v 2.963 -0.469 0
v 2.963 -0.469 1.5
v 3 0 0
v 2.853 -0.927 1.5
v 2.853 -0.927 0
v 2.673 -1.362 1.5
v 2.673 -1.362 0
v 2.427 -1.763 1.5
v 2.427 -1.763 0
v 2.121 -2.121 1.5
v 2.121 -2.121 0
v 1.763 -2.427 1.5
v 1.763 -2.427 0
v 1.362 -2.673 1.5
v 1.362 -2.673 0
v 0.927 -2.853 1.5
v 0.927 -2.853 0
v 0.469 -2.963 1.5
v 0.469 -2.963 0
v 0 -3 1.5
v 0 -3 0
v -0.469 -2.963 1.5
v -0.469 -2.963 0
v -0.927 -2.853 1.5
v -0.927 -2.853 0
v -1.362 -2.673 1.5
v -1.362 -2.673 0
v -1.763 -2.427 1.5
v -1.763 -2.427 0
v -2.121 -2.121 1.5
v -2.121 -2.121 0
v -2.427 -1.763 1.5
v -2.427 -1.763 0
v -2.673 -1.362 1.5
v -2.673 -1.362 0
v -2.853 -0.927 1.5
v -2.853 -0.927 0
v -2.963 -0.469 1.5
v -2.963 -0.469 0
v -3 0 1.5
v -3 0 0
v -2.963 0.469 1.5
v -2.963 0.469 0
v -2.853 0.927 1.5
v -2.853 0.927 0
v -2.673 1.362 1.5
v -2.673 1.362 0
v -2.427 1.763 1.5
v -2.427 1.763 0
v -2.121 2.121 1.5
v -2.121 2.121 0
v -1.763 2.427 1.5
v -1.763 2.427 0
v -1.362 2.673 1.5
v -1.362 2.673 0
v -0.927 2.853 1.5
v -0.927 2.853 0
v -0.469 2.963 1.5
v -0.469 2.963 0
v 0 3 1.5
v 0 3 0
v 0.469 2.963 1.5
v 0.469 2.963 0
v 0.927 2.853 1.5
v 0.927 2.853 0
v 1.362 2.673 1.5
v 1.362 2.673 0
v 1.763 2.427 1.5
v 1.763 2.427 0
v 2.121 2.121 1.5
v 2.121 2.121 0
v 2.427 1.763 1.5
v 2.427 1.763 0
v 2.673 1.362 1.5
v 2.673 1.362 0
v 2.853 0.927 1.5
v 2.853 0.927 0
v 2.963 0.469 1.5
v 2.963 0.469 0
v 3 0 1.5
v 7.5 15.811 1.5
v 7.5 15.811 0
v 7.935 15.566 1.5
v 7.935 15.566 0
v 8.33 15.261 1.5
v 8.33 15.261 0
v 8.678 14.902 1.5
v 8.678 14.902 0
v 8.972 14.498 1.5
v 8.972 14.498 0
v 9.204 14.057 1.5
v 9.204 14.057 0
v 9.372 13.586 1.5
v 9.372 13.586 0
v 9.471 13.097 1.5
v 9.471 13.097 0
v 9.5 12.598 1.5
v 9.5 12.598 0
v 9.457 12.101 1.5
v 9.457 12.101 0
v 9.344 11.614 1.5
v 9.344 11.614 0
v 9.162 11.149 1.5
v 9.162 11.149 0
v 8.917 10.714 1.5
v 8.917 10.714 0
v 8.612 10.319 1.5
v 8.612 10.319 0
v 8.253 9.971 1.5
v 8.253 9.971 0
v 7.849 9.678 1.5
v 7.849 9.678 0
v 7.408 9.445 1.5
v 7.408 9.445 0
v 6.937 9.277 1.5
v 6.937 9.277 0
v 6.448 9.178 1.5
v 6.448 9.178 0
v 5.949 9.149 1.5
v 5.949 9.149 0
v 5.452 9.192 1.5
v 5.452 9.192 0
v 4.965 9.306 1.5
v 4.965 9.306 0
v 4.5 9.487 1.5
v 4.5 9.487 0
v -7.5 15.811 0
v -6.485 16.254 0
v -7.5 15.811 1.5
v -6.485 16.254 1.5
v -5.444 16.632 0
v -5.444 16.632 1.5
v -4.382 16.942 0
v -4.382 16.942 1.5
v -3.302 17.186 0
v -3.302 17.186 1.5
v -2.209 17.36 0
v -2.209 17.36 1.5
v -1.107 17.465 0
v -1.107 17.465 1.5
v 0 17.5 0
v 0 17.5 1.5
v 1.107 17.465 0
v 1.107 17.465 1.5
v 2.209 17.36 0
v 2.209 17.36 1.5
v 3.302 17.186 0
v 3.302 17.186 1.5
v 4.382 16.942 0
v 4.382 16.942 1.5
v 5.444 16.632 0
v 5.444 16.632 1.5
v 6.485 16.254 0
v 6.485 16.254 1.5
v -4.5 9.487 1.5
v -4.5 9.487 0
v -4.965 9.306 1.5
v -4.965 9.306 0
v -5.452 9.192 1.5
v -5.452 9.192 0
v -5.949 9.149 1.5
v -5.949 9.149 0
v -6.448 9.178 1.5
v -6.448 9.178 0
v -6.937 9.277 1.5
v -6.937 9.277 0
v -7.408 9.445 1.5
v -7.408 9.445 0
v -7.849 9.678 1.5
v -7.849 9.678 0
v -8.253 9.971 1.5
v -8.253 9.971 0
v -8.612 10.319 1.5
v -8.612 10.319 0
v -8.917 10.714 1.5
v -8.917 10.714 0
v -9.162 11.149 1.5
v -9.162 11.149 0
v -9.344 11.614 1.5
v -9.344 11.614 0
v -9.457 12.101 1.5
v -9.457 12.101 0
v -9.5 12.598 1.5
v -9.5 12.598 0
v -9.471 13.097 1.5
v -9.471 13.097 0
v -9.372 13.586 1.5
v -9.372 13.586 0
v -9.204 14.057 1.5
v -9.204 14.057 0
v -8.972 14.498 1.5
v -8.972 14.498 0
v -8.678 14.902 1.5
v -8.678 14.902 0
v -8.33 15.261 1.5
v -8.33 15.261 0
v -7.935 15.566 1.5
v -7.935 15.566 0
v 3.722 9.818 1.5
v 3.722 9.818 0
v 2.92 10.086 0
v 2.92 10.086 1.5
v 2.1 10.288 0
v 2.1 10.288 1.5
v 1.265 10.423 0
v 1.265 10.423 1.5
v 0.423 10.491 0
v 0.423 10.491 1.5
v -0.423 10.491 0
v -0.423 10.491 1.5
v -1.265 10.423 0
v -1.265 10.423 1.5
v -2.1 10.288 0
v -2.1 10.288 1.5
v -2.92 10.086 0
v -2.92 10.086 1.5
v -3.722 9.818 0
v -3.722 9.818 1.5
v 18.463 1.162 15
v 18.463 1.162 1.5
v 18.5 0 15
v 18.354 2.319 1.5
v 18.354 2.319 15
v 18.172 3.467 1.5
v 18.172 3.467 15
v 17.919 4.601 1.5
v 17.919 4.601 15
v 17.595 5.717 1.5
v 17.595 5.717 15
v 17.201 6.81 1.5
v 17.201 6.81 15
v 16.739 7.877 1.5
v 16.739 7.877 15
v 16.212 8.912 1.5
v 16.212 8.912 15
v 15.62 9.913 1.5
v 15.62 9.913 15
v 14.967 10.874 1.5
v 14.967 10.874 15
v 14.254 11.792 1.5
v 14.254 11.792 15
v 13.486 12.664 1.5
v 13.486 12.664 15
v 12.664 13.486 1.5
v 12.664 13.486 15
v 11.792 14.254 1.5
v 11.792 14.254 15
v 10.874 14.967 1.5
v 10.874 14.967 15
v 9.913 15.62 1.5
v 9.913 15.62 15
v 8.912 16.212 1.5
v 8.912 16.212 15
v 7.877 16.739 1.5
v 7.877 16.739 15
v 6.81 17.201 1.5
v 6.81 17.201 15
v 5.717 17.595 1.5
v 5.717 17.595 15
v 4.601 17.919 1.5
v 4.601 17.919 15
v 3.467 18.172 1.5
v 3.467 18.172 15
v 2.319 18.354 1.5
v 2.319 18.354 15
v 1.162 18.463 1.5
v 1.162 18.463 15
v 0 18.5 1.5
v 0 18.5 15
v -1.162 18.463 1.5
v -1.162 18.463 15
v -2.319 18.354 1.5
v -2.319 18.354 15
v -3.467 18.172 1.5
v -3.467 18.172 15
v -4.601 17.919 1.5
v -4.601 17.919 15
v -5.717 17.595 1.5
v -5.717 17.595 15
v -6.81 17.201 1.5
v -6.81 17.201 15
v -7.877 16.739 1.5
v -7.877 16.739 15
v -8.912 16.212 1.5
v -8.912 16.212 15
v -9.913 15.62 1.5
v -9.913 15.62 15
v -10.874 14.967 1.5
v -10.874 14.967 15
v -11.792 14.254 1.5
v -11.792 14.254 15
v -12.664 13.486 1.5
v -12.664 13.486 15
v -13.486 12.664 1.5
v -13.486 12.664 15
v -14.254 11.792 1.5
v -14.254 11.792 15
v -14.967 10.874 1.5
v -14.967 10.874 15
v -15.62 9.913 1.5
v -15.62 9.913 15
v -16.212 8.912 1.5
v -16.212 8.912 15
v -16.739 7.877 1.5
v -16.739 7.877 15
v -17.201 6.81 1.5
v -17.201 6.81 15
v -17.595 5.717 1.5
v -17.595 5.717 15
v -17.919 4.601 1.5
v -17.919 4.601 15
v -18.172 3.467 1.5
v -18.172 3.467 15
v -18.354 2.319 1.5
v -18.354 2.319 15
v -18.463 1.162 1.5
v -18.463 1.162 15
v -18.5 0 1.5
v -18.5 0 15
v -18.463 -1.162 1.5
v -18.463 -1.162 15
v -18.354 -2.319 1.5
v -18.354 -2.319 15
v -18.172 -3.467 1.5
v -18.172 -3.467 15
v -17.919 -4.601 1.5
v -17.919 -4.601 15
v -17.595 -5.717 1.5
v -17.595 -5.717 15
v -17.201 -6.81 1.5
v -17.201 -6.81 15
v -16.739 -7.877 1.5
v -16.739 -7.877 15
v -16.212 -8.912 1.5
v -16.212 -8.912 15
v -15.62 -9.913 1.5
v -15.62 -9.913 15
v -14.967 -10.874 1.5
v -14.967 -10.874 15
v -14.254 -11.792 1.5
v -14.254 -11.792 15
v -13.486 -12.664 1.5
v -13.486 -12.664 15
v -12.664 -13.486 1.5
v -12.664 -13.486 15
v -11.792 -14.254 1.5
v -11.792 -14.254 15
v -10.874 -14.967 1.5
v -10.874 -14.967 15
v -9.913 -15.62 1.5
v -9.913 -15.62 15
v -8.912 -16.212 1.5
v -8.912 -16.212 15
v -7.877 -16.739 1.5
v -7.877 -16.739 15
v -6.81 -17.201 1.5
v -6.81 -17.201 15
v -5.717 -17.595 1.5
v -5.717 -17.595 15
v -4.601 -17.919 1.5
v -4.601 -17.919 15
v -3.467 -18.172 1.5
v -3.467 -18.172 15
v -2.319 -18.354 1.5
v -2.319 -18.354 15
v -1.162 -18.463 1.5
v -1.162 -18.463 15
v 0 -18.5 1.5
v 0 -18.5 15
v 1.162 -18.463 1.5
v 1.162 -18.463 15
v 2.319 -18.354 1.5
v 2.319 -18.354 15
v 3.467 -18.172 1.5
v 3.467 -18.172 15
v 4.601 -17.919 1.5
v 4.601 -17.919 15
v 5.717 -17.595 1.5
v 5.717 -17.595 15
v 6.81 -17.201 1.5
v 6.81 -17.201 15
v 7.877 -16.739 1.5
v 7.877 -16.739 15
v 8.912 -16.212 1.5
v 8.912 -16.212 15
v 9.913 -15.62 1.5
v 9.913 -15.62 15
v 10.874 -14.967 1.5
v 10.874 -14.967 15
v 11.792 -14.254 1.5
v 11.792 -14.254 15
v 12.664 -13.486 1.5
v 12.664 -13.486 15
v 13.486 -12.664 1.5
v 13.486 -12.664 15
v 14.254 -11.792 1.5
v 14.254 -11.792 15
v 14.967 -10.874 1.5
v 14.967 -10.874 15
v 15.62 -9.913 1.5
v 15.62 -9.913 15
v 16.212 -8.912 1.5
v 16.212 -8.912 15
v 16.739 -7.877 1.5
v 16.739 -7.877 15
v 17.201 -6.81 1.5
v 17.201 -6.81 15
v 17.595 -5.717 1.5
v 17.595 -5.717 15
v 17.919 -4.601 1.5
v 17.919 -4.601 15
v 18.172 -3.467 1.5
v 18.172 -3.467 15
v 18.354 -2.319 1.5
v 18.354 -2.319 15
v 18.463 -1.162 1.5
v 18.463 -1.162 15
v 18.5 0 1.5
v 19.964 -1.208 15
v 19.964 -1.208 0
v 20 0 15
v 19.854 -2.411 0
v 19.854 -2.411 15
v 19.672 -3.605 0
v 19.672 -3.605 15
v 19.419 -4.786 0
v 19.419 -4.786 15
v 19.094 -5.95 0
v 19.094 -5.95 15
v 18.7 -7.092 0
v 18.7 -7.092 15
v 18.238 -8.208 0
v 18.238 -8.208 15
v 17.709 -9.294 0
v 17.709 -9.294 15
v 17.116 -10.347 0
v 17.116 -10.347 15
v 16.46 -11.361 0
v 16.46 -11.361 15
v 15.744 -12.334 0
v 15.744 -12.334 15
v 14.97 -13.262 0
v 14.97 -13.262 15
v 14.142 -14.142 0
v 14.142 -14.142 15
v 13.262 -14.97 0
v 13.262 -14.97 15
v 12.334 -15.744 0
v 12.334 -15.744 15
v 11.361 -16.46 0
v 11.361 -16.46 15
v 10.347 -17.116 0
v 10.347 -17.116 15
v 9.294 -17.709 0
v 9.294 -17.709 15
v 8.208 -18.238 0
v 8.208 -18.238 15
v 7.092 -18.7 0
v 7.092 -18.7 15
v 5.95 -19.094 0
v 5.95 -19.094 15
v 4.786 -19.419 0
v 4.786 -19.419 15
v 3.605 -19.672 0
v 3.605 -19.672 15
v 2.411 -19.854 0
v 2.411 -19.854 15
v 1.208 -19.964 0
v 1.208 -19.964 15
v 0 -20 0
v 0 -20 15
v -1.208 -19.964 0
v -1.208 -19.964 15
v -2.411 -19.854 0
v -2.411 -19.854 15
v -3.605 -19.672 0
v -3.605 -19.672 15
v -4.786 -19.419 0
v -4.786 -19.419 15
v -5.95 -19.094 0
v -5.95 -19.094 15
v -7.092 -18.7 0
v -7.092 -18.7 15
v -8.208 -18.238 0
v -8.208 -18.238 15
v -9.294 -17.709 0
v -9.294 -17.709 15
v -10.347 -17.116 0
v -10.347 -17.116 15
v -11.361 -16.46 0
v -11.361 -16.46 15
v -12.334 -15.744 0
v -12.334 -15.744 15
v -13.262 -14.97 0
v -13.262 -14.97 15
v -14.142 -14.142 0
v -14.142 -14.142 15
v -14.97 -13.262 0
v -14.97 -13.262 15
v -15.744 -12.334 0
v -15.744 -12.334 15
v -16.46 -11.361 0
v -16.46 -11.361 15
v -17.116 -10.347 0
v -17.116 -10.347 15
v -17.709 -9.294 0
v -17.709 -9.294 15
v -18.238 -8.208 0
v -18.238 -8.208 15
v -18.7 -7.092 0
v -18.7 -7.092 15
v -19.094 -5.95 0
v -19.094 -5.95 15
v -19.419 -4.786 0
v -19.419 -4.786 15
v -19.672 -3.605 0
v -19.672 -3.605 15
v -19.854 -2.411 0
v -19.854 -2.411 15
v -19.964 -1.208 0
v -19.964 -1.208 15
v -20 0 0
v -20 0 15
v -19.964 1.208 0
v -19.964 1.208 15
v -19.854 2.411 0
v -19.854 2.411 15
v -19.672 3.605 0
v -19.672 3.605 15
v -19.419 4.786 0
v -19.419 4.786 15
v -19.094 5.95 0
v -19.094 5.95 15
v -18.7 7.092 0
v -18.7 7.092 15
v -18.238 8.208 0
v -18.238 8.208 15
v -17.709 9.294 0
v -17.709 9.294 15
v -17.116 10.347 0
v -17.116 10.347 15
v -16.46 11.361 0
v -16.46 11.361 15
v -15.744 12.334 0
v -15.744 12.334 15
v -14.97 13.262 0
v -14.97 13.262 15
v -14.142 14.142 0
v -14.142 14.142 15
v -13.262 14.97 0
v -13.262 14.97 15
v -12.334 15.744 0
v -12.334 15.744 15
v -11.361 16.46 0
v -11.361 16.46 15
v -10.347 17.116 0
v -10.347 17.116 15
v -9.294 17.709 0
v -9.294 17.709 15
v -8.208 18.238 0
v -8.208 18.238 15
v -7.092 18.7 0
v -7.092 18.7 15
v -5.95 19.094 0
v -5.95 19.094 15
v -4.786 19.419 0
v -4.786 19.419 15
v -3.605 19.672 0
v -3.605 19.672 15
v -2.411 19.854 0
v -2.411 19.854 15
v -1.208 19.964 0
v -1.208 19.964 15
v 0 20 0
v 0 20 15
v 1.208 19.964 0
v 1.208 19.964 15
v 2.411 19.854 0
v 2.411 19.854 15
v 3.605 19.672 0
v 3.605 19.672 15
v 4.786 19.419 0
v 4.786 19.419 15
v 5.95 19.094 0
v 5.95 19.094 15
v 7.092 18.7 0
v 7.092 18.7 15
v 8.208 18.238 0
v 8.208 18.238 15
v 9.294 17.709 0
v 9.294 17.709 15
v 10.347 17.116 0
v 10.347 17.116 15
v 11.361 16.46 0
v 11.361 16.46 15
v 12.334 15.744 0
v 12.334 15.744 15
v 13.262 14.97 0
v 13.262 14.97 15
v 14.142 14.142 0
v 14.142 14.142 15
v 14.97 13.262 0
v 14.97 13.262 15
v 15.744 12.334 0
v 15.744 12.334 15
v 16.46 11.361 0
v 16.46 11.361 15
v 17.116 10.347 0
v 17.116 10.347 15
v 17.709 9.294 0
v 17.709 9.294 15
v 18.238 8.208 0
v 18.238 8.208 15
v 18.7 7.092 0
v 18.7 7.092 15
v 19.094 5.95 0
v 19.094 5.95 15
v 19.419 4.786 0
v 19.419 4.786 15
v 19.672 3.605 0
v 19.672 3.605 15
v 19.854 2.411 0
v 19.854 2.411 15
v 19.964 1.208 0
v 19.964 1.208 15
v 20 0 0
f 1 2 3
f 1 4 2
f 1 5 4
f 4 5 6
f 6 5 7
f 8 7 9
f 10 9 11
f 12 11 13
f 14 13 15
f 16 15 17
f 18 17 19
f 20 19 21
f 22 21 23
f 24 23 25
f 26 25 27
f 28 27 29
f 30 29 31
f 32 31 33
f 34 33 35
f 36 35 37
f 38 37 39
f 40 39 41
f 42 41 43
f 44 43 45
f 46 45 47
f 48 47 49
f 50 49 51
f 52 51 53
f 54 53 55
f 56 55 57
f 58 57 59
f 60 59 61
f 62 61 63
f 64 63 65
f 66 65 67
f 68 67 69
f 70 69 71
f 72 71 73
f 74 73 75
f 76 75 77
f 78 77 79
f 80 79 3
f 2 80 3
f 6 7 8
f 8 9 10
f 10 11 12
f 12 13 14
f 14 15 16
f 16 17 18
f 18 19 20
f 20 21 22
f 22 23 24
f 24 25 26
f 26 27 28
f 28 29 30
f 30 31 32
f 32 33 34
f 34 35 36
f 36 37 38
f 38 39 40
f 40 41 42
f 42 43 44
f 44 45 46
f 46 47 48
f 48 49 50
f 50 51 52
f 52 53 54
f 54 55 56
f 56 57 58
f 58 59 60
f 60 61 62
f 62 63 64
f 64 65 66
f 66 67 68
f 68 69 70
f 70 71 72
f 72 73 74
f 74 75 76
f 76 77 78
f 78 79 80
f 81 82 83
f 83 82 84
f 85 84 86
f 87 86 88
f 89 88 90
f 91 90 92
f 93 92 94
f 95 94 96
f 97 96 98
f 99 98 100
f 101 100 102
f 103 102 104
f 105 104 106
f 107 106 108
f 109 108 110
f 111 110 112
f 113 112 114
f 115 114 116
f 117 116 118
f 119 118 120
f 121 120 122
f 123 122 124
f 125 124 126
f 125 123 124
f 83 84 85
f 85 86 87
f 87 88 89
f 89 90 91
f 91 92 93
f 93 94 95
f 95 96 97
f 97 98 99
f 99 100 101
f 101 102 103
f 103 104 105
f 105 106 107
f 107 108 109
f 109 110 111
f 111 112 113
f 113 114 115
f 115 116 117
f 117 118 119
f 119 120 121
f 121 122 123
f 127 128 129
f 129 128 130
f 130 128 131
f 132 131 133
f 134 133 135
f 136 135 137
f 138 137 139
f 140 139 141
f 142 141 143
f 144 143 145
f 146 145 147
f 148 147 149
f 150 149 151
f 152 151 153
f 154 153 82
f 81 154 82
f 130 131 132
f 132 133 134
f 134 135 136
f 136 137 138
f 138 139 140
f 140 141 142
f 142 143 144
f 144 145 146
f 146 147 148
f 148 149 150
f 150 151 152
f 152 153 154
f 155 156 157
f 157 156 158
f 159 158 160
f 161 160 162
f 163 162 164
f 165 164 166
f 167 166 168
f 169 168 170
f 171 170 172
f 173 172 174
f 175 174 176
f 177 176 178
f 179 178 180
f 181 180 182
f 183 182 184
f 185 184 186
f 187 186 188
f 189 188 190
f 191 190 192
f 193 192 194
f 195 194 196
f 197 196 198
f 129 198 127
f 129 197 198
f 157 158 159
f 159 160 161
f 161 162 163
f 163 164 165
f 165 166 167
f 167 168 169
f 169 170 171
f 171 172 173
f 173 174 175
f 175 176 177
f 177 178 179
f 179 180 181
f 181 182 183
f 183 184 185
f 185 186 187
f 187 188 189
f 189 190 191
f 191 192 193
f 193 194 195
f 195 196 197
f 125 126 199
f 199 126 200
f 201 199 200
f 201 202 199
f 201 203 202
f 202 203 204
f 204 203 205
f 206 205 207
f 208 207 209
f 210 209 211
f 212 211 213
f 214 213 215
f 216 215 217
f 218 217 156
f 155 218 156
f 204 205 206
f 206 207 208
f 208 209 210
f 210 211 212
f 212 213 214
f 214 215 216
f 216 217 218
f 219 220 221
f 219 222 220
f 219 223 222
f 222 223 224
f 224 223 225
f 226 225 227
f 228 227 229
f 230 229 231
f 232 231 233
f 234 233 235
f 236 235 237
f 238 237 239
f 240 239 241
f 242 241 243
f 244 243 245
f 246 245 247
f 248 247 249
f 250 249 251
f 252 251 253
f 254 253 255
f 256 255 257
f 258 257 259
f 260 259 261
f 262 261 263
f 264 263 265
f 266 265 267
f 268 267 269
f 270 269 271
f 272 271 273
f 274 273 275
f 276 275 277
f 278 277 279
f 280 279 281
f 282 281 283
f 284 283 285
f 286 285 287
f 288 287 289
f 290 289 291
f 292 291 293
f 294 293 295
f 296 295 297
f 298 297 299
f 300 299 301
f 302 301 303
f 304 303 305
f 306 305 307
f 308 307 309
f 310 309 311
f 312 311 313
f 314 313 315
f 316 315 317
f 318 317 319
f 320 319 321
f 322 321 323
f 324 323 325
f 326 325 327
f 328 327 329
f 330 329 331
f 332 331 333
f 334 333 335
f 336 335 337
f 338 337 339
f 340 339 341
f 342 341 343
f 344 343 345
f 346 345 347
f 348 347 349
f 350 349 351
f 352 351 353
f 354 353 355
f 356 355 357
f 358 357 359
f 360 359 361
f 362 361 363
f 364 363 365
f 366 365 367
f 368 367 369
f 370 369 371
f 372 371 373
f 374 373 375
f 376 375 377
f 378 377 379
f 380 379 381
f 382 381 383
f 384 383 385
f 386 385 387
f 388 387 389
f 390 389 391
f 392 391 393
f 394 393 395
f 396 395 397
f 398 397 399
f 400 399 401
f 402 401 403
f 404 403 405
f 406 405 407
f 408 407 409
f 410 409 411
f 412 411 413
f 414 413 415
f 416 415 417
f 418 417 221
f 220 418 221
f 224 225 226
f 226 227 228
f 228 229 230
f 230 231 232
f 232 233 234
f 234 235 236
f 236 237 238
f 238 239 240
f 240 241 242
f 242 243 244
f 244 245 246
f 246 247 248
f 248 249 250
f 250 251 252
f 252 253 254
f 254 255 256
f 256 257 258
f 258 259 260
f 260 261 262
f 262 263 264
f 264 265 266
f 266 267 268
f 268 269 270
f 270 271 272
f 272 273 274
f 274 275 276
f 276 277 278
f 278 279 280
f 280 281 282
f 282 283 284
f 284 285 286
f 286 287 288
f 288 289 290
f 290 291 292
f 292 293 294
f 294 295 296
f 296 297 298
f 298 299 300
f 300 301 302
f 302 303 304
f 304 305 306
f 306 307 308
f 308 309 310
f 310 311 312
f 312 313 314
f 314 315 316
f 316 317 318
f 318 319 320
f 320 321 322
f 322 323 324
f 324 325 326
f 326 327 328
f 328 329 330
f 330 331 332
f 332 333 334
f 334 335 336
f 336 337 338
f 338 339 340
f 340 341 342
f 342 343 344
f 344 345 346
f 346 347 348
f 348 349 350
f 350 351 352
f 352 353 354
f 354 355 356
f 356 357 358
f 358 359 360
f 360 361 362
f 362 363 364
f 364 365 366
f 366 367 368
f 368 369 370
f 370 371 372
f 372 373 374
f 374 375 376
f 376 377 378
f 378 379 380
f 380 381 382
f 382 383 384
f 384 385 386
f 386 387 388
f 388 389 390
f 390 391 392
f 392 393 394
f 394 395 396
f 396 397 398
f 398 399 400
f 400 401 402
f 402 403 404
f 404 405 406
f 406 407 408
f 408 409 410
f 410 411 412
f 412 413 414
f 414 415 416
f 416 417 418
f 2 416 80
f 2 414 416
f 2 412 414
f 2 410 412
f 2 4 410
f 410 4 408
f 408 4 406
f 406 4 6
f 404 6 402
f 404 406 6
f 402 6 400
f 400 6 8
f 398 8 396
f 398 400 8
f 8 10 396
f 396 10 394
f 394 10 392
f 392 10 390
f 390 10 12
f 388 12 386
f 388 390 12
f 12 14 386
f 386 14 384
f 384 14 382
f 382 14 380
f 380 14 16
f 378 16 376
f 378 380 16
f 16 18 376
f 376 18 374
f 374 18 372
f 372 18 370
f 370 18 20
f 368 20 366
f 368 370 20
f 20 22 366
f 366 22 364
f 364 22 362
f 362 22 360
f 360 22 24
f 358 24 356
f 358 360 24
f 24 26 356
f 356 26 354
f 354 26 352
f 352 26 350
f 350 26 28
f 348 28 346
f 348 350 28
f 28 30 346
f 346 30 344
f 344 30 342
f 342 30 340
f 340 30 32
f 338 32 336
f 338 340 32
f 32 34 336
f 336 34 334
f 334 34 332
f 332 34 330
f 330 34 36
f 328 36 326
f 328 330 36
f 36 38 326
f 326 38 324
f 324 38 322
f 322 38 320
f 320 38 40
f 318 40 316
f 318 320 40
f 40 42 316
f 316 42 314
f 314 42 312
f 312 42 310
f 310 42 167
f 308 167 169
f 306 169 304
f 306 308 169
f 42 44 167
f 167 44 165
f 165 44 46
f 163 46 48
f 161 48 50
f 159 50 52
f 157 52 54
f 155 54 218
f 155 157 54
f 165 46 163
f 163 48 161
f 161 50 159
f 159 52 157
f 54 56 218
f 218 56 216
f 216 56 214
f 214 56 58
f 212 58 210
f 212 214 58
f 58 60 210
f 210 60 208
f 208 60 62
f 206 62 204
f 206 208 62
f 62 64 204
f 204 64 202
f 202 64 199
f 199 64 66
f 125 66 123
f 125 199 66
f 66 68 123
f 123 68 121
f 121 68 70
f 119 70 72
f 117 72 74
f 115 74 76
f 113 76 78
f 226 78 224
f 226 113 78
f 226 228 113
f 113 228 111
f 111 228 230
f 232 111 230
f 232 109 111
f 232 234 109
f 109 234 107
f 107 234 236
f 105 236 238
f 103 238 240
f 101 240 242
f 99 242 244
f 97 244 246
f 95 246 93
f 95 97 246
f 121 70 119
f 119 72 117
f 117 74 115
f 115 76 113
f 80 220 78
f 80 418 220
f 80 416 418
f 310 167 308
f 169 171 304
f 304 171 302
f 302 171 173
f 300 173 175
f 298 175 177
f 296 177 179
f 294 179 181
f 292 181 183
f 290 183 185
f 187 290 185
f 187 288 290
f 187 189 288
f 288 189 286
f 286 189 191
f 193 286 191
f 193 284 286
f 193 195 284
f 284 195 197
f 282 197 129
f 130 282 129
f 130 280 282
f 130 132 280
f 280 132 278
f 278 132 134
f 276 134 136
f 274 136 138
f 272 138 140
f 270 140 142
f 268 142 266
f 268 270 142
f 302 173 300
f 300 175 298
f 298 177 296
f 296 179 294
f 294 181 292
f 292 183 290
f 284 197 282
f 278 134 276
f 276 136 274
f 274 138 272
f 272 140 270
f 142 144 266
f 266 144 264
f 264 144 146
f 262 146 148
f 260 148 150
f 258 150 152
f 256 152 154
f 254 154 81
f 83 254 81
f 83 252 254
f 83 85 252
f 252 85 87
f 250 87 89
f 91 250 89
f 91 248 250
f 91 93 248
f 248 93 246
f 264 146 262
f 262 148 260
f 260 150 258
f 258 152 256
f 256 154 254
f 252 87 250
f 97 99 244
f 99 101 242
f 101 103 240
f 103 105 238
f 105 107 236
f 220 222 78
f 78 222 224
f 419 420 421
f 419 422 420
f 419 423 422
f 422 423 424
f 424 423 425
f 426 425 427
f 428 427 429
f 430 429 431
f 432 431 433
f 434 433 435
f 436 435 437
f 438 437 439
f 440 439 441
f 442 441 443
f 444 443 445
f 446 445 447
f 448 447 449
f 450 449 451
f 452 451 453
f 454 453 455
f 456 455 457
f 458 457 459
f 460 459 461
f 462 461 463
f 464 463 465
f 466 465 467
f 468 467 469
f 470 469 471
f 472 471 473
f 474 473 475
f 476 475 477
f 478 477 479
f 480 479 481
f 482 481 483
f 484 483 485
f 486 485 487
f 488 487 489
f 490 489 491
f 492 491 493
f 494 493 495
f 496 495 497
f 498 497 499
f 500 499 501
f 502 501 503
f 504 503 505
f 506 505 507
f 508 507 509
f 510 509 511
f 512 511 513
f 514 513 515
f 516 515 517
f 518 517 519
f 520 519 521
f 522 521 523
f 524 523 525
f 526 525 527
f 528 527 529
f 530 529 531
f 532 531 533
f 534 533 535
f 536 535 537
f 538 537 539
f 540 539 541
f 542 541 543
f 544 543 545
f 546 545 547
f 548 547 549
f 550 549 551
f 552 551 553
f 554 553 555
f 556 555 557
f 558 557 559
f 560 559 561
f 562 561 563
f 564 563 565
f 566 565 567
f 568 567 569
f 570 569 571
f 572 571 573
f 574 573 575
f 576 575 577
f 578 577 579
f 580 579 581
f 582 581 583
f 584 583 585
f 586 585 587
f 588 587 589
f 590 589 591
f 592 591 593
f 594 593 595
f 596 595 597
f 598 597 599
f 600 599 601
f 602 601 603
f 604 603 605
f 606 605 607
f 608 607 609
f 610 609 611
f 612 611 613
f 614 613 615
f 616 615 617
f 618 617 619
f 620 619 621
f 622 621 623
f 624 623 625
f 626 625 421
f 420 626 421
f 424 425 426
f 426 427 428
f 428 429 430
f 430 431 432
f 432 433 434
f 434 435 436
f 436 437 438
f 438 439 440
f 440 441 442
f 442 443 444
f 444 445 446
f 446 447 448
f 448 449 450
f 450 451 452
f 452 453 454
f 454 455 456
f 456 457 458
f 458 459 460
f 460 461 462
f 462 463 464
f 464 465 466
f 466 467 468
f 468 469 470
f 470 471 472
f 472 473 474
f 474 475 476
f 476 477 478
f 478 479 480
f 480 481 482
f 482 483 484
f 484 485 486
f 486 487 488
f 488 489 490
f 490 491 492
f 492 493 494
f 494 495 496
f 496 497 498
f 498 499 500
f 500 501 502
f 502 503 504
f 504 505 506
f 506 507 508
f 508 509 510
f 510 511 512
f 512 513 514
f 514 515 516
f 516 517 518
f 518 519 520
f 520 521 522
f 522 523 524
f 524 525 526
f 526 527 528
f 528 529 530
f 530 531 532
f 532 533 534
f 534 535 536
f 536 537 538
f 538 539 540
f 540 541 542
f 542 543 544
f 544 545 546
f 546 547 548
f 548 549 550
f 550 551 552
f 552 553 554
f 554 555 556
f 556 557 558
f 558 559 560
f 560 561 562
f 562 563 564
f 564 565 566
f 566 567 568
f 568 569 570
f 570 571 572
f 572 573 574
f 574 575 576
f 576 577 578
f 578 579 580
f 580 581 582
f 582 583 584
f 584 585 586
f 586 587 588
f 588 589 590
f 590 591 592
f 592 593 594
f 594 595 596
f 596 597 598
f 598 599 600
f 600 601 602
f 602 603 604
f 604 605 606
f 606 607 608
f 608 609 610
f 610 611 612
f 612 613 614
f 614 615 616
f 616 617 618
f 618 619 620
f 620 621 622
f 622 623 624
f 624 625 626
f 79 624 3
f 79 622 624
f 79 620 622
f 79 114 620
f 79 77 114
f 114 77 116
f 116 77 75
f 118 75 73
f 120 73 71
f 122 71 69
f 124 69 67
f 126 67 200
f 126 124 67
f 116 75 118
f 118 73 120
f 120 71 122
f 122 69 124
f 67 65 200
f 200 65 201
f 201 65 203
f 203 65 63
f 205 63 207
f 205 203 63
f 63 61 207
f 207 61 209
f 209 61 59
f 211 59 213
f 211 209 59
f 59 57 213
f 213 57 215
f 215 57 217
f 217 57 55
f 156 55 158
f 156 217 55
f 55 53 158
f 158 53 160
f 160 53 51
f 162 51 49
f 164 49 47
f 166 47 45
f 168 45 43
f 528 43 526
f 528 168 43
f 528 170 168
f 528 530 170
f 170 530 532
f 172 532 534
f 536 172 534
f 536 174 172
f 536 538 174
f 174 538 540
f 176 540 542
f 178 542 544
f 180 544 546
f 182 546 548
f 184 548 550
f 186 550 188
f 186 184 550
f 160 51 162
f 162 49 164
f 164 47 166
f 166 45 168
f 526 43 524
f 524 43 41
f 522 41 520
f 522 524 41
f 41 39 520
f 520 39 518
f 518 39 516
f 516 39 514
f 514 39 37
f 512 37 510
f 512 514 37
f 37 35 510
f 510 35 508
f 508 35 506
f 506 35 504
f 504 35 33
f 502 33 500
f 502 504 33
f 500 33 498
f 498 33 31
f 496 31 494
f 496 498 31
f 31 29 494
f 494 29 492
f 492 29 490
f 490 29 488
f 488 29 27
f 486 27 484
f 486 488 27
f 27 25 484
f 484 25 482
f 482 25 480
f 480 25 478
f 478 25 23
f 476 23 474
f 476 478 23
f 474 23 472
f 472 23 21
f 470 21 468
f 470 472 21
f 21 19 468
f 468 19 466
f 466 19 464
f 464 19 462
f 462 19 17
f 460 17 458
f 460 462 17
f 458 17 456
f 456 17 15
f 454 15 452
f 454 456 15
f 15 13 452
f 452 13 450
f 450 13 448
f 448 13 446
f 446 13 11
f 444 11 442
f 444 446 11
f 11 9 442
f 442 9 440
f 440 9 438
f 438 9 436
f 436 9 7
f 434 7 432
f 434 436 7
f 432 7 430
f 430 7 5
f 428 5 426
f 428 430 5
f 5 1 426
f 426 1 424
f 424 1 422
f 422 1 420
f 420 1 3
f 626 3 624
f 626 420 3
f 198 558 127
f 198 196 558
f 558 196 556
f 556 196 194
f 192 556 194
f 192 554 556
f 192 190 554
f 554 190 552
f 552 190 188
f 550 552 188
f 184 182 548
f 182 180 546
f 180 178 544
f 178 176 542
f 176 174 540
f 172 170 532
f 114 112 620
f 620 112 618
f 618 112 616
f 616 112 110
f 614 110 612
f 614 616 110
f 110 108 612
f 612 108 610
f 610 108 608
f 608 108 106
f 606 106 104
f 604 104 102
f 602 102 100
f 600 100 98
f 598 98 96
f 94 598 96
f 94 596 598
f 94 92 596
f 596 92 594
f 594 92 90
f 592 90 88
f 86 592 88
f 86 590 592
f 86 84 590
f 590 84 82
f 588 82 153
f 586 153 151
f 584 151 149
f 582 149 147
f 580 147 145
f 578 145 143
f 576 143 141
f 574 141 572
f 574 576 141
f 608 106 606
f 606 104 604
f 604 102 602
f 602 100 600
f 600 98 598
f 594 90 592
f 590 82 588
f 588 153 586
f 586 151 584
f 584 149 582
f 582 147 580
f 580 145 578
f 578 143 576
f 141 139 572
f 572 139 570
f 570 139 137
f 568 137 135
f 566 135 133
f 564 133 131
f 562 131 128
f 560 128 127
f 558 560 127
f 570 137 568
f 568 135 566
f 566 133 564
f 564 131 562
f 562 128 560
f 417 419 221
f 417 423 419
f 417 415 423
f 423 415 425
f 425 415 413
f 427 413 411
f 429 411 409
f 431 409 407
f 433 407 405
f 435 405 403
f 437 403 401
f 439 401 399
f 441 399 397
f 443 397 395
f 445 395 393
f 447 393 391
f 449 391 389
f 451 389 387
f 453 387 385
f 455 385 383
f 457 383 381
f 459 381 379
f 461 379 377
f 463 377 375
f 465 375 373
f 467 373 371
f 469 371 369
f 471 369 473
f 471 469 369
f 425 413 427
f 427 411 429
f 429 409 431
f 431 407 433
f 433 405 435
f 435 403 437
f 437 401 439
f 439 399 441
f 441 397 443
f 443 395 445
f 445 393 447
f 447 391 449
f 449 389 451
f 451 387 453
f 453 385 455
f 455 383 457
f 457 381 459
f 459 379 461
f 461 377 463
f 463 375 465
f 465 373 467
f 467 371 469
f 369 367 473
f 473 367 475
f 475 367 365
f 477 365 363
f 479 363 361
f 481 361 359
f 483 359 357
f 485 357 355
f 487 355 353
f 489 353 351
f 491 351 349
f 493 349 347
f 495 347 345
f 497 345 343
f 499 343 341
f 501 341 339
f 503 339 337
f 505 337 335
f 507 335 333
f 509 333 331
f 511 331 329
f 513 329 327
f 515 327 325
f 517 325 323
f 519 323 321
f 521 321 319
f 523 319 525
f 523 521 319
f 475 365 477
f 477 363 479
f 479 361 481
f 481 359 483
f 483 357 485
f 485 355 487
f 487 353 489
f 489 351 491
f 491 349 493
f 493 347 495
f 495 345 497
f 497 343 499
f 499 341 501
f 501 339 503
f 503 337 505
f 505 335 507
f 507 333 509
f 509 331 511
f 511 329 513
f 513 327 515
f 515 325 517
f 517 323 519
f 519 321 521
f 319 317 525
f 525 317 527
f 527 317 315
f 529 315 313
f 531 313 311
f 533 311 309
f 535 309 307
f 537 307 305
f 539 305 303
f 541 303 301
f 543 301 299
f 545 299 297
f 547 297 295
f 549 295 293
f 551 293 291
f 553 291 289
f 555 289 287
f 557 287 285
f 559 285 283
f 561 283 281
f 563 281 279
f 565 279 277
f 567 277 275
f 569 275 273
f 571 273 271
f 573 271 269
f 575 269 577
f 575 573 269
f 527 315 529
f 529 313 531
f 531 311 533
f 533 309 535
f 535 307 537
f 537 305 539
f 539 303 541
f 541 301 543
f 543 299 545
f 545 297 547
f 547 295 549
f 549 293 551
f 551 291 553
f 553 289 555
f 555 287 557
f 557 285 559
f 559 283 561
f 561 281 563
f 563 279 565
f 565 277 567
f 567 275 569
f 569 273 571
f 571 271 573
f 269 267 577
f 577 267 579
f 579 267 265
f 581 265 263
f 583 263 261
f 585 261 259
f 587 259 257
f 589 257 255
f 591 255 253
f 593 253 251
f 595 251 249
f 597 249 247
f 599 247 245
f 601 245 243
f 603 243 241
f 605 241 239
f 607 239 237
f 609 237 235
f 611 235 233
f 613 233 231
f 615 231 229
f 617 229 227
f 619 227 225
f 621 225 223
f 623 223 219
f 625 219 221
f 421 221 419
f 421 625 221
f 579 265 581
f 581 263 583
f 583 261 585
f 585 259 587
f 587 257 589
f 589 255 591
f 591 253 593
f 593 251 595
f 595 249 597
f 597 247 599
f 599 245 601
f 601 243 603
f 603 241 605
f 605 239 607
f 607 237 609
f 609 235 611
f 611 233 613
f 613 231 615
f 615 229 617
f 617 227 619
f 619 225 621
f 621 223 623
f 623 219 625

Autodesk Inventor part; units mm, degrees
ref_plane "YZ Plane" through (0, 0, 0) normal (1, 0, 0) x (0, 1, 0)
ref_plane "XZ Plane" through (0, 0, 0) normal (0, 1, 0) x (-1, 0, 0)
ref_plane "XY Plane" through (0, 0, 0) normal (0, 0, 1) x (1, 0, 0)
sketch "Sketch1" plane through (0, 0, 0) normal (0, 0, 1) x (1, 0, 0)
  circle A0 centre (0, 0) radius 20
  dimension "d0" = 40
extrude "Extrusion1" add sketch "Sketch1" along normal blind 15
shell "Shell1" thickness 1.5 removed faces 1 at (-2.364, 6.2334, 15)
sketch "Sketch2" plane through (0, 0, 1.5) normal (0, 0, 1) x (1, 0, 0)
  circle A0 centre (0, 0) radius 3
  arc A1 (6, 12.6491) -> (-6, 12.6491) centre (0, 0) ccw construction
  arc A2 (7.5, 15.8114) -> (-7.5, 15.8114) centre (0, 0) ccw
  arc A3 (4.5, 9.4868) -> (-4.5, 9.4868) centre (0, 0) ccw
  arc A4 (4.5, 9.4868) -> (7.5, 15.8114) centre (6, 12.6491) ccw
  arc A5 (-7.5, 15.8114) -> (-4.5, 9.4868) centre (-6, 12.6491) ccw
  line L0 (0, -30.6) -> (0, 43.6) projected
  dimension "d4" = 6
  dimension "d5" = 7
  dimension "d6" = 14
  dimension "d9" = 12
extrude "Extrusion2" cut sketch "Sketch2" against normal through all
properties part number "principal"
